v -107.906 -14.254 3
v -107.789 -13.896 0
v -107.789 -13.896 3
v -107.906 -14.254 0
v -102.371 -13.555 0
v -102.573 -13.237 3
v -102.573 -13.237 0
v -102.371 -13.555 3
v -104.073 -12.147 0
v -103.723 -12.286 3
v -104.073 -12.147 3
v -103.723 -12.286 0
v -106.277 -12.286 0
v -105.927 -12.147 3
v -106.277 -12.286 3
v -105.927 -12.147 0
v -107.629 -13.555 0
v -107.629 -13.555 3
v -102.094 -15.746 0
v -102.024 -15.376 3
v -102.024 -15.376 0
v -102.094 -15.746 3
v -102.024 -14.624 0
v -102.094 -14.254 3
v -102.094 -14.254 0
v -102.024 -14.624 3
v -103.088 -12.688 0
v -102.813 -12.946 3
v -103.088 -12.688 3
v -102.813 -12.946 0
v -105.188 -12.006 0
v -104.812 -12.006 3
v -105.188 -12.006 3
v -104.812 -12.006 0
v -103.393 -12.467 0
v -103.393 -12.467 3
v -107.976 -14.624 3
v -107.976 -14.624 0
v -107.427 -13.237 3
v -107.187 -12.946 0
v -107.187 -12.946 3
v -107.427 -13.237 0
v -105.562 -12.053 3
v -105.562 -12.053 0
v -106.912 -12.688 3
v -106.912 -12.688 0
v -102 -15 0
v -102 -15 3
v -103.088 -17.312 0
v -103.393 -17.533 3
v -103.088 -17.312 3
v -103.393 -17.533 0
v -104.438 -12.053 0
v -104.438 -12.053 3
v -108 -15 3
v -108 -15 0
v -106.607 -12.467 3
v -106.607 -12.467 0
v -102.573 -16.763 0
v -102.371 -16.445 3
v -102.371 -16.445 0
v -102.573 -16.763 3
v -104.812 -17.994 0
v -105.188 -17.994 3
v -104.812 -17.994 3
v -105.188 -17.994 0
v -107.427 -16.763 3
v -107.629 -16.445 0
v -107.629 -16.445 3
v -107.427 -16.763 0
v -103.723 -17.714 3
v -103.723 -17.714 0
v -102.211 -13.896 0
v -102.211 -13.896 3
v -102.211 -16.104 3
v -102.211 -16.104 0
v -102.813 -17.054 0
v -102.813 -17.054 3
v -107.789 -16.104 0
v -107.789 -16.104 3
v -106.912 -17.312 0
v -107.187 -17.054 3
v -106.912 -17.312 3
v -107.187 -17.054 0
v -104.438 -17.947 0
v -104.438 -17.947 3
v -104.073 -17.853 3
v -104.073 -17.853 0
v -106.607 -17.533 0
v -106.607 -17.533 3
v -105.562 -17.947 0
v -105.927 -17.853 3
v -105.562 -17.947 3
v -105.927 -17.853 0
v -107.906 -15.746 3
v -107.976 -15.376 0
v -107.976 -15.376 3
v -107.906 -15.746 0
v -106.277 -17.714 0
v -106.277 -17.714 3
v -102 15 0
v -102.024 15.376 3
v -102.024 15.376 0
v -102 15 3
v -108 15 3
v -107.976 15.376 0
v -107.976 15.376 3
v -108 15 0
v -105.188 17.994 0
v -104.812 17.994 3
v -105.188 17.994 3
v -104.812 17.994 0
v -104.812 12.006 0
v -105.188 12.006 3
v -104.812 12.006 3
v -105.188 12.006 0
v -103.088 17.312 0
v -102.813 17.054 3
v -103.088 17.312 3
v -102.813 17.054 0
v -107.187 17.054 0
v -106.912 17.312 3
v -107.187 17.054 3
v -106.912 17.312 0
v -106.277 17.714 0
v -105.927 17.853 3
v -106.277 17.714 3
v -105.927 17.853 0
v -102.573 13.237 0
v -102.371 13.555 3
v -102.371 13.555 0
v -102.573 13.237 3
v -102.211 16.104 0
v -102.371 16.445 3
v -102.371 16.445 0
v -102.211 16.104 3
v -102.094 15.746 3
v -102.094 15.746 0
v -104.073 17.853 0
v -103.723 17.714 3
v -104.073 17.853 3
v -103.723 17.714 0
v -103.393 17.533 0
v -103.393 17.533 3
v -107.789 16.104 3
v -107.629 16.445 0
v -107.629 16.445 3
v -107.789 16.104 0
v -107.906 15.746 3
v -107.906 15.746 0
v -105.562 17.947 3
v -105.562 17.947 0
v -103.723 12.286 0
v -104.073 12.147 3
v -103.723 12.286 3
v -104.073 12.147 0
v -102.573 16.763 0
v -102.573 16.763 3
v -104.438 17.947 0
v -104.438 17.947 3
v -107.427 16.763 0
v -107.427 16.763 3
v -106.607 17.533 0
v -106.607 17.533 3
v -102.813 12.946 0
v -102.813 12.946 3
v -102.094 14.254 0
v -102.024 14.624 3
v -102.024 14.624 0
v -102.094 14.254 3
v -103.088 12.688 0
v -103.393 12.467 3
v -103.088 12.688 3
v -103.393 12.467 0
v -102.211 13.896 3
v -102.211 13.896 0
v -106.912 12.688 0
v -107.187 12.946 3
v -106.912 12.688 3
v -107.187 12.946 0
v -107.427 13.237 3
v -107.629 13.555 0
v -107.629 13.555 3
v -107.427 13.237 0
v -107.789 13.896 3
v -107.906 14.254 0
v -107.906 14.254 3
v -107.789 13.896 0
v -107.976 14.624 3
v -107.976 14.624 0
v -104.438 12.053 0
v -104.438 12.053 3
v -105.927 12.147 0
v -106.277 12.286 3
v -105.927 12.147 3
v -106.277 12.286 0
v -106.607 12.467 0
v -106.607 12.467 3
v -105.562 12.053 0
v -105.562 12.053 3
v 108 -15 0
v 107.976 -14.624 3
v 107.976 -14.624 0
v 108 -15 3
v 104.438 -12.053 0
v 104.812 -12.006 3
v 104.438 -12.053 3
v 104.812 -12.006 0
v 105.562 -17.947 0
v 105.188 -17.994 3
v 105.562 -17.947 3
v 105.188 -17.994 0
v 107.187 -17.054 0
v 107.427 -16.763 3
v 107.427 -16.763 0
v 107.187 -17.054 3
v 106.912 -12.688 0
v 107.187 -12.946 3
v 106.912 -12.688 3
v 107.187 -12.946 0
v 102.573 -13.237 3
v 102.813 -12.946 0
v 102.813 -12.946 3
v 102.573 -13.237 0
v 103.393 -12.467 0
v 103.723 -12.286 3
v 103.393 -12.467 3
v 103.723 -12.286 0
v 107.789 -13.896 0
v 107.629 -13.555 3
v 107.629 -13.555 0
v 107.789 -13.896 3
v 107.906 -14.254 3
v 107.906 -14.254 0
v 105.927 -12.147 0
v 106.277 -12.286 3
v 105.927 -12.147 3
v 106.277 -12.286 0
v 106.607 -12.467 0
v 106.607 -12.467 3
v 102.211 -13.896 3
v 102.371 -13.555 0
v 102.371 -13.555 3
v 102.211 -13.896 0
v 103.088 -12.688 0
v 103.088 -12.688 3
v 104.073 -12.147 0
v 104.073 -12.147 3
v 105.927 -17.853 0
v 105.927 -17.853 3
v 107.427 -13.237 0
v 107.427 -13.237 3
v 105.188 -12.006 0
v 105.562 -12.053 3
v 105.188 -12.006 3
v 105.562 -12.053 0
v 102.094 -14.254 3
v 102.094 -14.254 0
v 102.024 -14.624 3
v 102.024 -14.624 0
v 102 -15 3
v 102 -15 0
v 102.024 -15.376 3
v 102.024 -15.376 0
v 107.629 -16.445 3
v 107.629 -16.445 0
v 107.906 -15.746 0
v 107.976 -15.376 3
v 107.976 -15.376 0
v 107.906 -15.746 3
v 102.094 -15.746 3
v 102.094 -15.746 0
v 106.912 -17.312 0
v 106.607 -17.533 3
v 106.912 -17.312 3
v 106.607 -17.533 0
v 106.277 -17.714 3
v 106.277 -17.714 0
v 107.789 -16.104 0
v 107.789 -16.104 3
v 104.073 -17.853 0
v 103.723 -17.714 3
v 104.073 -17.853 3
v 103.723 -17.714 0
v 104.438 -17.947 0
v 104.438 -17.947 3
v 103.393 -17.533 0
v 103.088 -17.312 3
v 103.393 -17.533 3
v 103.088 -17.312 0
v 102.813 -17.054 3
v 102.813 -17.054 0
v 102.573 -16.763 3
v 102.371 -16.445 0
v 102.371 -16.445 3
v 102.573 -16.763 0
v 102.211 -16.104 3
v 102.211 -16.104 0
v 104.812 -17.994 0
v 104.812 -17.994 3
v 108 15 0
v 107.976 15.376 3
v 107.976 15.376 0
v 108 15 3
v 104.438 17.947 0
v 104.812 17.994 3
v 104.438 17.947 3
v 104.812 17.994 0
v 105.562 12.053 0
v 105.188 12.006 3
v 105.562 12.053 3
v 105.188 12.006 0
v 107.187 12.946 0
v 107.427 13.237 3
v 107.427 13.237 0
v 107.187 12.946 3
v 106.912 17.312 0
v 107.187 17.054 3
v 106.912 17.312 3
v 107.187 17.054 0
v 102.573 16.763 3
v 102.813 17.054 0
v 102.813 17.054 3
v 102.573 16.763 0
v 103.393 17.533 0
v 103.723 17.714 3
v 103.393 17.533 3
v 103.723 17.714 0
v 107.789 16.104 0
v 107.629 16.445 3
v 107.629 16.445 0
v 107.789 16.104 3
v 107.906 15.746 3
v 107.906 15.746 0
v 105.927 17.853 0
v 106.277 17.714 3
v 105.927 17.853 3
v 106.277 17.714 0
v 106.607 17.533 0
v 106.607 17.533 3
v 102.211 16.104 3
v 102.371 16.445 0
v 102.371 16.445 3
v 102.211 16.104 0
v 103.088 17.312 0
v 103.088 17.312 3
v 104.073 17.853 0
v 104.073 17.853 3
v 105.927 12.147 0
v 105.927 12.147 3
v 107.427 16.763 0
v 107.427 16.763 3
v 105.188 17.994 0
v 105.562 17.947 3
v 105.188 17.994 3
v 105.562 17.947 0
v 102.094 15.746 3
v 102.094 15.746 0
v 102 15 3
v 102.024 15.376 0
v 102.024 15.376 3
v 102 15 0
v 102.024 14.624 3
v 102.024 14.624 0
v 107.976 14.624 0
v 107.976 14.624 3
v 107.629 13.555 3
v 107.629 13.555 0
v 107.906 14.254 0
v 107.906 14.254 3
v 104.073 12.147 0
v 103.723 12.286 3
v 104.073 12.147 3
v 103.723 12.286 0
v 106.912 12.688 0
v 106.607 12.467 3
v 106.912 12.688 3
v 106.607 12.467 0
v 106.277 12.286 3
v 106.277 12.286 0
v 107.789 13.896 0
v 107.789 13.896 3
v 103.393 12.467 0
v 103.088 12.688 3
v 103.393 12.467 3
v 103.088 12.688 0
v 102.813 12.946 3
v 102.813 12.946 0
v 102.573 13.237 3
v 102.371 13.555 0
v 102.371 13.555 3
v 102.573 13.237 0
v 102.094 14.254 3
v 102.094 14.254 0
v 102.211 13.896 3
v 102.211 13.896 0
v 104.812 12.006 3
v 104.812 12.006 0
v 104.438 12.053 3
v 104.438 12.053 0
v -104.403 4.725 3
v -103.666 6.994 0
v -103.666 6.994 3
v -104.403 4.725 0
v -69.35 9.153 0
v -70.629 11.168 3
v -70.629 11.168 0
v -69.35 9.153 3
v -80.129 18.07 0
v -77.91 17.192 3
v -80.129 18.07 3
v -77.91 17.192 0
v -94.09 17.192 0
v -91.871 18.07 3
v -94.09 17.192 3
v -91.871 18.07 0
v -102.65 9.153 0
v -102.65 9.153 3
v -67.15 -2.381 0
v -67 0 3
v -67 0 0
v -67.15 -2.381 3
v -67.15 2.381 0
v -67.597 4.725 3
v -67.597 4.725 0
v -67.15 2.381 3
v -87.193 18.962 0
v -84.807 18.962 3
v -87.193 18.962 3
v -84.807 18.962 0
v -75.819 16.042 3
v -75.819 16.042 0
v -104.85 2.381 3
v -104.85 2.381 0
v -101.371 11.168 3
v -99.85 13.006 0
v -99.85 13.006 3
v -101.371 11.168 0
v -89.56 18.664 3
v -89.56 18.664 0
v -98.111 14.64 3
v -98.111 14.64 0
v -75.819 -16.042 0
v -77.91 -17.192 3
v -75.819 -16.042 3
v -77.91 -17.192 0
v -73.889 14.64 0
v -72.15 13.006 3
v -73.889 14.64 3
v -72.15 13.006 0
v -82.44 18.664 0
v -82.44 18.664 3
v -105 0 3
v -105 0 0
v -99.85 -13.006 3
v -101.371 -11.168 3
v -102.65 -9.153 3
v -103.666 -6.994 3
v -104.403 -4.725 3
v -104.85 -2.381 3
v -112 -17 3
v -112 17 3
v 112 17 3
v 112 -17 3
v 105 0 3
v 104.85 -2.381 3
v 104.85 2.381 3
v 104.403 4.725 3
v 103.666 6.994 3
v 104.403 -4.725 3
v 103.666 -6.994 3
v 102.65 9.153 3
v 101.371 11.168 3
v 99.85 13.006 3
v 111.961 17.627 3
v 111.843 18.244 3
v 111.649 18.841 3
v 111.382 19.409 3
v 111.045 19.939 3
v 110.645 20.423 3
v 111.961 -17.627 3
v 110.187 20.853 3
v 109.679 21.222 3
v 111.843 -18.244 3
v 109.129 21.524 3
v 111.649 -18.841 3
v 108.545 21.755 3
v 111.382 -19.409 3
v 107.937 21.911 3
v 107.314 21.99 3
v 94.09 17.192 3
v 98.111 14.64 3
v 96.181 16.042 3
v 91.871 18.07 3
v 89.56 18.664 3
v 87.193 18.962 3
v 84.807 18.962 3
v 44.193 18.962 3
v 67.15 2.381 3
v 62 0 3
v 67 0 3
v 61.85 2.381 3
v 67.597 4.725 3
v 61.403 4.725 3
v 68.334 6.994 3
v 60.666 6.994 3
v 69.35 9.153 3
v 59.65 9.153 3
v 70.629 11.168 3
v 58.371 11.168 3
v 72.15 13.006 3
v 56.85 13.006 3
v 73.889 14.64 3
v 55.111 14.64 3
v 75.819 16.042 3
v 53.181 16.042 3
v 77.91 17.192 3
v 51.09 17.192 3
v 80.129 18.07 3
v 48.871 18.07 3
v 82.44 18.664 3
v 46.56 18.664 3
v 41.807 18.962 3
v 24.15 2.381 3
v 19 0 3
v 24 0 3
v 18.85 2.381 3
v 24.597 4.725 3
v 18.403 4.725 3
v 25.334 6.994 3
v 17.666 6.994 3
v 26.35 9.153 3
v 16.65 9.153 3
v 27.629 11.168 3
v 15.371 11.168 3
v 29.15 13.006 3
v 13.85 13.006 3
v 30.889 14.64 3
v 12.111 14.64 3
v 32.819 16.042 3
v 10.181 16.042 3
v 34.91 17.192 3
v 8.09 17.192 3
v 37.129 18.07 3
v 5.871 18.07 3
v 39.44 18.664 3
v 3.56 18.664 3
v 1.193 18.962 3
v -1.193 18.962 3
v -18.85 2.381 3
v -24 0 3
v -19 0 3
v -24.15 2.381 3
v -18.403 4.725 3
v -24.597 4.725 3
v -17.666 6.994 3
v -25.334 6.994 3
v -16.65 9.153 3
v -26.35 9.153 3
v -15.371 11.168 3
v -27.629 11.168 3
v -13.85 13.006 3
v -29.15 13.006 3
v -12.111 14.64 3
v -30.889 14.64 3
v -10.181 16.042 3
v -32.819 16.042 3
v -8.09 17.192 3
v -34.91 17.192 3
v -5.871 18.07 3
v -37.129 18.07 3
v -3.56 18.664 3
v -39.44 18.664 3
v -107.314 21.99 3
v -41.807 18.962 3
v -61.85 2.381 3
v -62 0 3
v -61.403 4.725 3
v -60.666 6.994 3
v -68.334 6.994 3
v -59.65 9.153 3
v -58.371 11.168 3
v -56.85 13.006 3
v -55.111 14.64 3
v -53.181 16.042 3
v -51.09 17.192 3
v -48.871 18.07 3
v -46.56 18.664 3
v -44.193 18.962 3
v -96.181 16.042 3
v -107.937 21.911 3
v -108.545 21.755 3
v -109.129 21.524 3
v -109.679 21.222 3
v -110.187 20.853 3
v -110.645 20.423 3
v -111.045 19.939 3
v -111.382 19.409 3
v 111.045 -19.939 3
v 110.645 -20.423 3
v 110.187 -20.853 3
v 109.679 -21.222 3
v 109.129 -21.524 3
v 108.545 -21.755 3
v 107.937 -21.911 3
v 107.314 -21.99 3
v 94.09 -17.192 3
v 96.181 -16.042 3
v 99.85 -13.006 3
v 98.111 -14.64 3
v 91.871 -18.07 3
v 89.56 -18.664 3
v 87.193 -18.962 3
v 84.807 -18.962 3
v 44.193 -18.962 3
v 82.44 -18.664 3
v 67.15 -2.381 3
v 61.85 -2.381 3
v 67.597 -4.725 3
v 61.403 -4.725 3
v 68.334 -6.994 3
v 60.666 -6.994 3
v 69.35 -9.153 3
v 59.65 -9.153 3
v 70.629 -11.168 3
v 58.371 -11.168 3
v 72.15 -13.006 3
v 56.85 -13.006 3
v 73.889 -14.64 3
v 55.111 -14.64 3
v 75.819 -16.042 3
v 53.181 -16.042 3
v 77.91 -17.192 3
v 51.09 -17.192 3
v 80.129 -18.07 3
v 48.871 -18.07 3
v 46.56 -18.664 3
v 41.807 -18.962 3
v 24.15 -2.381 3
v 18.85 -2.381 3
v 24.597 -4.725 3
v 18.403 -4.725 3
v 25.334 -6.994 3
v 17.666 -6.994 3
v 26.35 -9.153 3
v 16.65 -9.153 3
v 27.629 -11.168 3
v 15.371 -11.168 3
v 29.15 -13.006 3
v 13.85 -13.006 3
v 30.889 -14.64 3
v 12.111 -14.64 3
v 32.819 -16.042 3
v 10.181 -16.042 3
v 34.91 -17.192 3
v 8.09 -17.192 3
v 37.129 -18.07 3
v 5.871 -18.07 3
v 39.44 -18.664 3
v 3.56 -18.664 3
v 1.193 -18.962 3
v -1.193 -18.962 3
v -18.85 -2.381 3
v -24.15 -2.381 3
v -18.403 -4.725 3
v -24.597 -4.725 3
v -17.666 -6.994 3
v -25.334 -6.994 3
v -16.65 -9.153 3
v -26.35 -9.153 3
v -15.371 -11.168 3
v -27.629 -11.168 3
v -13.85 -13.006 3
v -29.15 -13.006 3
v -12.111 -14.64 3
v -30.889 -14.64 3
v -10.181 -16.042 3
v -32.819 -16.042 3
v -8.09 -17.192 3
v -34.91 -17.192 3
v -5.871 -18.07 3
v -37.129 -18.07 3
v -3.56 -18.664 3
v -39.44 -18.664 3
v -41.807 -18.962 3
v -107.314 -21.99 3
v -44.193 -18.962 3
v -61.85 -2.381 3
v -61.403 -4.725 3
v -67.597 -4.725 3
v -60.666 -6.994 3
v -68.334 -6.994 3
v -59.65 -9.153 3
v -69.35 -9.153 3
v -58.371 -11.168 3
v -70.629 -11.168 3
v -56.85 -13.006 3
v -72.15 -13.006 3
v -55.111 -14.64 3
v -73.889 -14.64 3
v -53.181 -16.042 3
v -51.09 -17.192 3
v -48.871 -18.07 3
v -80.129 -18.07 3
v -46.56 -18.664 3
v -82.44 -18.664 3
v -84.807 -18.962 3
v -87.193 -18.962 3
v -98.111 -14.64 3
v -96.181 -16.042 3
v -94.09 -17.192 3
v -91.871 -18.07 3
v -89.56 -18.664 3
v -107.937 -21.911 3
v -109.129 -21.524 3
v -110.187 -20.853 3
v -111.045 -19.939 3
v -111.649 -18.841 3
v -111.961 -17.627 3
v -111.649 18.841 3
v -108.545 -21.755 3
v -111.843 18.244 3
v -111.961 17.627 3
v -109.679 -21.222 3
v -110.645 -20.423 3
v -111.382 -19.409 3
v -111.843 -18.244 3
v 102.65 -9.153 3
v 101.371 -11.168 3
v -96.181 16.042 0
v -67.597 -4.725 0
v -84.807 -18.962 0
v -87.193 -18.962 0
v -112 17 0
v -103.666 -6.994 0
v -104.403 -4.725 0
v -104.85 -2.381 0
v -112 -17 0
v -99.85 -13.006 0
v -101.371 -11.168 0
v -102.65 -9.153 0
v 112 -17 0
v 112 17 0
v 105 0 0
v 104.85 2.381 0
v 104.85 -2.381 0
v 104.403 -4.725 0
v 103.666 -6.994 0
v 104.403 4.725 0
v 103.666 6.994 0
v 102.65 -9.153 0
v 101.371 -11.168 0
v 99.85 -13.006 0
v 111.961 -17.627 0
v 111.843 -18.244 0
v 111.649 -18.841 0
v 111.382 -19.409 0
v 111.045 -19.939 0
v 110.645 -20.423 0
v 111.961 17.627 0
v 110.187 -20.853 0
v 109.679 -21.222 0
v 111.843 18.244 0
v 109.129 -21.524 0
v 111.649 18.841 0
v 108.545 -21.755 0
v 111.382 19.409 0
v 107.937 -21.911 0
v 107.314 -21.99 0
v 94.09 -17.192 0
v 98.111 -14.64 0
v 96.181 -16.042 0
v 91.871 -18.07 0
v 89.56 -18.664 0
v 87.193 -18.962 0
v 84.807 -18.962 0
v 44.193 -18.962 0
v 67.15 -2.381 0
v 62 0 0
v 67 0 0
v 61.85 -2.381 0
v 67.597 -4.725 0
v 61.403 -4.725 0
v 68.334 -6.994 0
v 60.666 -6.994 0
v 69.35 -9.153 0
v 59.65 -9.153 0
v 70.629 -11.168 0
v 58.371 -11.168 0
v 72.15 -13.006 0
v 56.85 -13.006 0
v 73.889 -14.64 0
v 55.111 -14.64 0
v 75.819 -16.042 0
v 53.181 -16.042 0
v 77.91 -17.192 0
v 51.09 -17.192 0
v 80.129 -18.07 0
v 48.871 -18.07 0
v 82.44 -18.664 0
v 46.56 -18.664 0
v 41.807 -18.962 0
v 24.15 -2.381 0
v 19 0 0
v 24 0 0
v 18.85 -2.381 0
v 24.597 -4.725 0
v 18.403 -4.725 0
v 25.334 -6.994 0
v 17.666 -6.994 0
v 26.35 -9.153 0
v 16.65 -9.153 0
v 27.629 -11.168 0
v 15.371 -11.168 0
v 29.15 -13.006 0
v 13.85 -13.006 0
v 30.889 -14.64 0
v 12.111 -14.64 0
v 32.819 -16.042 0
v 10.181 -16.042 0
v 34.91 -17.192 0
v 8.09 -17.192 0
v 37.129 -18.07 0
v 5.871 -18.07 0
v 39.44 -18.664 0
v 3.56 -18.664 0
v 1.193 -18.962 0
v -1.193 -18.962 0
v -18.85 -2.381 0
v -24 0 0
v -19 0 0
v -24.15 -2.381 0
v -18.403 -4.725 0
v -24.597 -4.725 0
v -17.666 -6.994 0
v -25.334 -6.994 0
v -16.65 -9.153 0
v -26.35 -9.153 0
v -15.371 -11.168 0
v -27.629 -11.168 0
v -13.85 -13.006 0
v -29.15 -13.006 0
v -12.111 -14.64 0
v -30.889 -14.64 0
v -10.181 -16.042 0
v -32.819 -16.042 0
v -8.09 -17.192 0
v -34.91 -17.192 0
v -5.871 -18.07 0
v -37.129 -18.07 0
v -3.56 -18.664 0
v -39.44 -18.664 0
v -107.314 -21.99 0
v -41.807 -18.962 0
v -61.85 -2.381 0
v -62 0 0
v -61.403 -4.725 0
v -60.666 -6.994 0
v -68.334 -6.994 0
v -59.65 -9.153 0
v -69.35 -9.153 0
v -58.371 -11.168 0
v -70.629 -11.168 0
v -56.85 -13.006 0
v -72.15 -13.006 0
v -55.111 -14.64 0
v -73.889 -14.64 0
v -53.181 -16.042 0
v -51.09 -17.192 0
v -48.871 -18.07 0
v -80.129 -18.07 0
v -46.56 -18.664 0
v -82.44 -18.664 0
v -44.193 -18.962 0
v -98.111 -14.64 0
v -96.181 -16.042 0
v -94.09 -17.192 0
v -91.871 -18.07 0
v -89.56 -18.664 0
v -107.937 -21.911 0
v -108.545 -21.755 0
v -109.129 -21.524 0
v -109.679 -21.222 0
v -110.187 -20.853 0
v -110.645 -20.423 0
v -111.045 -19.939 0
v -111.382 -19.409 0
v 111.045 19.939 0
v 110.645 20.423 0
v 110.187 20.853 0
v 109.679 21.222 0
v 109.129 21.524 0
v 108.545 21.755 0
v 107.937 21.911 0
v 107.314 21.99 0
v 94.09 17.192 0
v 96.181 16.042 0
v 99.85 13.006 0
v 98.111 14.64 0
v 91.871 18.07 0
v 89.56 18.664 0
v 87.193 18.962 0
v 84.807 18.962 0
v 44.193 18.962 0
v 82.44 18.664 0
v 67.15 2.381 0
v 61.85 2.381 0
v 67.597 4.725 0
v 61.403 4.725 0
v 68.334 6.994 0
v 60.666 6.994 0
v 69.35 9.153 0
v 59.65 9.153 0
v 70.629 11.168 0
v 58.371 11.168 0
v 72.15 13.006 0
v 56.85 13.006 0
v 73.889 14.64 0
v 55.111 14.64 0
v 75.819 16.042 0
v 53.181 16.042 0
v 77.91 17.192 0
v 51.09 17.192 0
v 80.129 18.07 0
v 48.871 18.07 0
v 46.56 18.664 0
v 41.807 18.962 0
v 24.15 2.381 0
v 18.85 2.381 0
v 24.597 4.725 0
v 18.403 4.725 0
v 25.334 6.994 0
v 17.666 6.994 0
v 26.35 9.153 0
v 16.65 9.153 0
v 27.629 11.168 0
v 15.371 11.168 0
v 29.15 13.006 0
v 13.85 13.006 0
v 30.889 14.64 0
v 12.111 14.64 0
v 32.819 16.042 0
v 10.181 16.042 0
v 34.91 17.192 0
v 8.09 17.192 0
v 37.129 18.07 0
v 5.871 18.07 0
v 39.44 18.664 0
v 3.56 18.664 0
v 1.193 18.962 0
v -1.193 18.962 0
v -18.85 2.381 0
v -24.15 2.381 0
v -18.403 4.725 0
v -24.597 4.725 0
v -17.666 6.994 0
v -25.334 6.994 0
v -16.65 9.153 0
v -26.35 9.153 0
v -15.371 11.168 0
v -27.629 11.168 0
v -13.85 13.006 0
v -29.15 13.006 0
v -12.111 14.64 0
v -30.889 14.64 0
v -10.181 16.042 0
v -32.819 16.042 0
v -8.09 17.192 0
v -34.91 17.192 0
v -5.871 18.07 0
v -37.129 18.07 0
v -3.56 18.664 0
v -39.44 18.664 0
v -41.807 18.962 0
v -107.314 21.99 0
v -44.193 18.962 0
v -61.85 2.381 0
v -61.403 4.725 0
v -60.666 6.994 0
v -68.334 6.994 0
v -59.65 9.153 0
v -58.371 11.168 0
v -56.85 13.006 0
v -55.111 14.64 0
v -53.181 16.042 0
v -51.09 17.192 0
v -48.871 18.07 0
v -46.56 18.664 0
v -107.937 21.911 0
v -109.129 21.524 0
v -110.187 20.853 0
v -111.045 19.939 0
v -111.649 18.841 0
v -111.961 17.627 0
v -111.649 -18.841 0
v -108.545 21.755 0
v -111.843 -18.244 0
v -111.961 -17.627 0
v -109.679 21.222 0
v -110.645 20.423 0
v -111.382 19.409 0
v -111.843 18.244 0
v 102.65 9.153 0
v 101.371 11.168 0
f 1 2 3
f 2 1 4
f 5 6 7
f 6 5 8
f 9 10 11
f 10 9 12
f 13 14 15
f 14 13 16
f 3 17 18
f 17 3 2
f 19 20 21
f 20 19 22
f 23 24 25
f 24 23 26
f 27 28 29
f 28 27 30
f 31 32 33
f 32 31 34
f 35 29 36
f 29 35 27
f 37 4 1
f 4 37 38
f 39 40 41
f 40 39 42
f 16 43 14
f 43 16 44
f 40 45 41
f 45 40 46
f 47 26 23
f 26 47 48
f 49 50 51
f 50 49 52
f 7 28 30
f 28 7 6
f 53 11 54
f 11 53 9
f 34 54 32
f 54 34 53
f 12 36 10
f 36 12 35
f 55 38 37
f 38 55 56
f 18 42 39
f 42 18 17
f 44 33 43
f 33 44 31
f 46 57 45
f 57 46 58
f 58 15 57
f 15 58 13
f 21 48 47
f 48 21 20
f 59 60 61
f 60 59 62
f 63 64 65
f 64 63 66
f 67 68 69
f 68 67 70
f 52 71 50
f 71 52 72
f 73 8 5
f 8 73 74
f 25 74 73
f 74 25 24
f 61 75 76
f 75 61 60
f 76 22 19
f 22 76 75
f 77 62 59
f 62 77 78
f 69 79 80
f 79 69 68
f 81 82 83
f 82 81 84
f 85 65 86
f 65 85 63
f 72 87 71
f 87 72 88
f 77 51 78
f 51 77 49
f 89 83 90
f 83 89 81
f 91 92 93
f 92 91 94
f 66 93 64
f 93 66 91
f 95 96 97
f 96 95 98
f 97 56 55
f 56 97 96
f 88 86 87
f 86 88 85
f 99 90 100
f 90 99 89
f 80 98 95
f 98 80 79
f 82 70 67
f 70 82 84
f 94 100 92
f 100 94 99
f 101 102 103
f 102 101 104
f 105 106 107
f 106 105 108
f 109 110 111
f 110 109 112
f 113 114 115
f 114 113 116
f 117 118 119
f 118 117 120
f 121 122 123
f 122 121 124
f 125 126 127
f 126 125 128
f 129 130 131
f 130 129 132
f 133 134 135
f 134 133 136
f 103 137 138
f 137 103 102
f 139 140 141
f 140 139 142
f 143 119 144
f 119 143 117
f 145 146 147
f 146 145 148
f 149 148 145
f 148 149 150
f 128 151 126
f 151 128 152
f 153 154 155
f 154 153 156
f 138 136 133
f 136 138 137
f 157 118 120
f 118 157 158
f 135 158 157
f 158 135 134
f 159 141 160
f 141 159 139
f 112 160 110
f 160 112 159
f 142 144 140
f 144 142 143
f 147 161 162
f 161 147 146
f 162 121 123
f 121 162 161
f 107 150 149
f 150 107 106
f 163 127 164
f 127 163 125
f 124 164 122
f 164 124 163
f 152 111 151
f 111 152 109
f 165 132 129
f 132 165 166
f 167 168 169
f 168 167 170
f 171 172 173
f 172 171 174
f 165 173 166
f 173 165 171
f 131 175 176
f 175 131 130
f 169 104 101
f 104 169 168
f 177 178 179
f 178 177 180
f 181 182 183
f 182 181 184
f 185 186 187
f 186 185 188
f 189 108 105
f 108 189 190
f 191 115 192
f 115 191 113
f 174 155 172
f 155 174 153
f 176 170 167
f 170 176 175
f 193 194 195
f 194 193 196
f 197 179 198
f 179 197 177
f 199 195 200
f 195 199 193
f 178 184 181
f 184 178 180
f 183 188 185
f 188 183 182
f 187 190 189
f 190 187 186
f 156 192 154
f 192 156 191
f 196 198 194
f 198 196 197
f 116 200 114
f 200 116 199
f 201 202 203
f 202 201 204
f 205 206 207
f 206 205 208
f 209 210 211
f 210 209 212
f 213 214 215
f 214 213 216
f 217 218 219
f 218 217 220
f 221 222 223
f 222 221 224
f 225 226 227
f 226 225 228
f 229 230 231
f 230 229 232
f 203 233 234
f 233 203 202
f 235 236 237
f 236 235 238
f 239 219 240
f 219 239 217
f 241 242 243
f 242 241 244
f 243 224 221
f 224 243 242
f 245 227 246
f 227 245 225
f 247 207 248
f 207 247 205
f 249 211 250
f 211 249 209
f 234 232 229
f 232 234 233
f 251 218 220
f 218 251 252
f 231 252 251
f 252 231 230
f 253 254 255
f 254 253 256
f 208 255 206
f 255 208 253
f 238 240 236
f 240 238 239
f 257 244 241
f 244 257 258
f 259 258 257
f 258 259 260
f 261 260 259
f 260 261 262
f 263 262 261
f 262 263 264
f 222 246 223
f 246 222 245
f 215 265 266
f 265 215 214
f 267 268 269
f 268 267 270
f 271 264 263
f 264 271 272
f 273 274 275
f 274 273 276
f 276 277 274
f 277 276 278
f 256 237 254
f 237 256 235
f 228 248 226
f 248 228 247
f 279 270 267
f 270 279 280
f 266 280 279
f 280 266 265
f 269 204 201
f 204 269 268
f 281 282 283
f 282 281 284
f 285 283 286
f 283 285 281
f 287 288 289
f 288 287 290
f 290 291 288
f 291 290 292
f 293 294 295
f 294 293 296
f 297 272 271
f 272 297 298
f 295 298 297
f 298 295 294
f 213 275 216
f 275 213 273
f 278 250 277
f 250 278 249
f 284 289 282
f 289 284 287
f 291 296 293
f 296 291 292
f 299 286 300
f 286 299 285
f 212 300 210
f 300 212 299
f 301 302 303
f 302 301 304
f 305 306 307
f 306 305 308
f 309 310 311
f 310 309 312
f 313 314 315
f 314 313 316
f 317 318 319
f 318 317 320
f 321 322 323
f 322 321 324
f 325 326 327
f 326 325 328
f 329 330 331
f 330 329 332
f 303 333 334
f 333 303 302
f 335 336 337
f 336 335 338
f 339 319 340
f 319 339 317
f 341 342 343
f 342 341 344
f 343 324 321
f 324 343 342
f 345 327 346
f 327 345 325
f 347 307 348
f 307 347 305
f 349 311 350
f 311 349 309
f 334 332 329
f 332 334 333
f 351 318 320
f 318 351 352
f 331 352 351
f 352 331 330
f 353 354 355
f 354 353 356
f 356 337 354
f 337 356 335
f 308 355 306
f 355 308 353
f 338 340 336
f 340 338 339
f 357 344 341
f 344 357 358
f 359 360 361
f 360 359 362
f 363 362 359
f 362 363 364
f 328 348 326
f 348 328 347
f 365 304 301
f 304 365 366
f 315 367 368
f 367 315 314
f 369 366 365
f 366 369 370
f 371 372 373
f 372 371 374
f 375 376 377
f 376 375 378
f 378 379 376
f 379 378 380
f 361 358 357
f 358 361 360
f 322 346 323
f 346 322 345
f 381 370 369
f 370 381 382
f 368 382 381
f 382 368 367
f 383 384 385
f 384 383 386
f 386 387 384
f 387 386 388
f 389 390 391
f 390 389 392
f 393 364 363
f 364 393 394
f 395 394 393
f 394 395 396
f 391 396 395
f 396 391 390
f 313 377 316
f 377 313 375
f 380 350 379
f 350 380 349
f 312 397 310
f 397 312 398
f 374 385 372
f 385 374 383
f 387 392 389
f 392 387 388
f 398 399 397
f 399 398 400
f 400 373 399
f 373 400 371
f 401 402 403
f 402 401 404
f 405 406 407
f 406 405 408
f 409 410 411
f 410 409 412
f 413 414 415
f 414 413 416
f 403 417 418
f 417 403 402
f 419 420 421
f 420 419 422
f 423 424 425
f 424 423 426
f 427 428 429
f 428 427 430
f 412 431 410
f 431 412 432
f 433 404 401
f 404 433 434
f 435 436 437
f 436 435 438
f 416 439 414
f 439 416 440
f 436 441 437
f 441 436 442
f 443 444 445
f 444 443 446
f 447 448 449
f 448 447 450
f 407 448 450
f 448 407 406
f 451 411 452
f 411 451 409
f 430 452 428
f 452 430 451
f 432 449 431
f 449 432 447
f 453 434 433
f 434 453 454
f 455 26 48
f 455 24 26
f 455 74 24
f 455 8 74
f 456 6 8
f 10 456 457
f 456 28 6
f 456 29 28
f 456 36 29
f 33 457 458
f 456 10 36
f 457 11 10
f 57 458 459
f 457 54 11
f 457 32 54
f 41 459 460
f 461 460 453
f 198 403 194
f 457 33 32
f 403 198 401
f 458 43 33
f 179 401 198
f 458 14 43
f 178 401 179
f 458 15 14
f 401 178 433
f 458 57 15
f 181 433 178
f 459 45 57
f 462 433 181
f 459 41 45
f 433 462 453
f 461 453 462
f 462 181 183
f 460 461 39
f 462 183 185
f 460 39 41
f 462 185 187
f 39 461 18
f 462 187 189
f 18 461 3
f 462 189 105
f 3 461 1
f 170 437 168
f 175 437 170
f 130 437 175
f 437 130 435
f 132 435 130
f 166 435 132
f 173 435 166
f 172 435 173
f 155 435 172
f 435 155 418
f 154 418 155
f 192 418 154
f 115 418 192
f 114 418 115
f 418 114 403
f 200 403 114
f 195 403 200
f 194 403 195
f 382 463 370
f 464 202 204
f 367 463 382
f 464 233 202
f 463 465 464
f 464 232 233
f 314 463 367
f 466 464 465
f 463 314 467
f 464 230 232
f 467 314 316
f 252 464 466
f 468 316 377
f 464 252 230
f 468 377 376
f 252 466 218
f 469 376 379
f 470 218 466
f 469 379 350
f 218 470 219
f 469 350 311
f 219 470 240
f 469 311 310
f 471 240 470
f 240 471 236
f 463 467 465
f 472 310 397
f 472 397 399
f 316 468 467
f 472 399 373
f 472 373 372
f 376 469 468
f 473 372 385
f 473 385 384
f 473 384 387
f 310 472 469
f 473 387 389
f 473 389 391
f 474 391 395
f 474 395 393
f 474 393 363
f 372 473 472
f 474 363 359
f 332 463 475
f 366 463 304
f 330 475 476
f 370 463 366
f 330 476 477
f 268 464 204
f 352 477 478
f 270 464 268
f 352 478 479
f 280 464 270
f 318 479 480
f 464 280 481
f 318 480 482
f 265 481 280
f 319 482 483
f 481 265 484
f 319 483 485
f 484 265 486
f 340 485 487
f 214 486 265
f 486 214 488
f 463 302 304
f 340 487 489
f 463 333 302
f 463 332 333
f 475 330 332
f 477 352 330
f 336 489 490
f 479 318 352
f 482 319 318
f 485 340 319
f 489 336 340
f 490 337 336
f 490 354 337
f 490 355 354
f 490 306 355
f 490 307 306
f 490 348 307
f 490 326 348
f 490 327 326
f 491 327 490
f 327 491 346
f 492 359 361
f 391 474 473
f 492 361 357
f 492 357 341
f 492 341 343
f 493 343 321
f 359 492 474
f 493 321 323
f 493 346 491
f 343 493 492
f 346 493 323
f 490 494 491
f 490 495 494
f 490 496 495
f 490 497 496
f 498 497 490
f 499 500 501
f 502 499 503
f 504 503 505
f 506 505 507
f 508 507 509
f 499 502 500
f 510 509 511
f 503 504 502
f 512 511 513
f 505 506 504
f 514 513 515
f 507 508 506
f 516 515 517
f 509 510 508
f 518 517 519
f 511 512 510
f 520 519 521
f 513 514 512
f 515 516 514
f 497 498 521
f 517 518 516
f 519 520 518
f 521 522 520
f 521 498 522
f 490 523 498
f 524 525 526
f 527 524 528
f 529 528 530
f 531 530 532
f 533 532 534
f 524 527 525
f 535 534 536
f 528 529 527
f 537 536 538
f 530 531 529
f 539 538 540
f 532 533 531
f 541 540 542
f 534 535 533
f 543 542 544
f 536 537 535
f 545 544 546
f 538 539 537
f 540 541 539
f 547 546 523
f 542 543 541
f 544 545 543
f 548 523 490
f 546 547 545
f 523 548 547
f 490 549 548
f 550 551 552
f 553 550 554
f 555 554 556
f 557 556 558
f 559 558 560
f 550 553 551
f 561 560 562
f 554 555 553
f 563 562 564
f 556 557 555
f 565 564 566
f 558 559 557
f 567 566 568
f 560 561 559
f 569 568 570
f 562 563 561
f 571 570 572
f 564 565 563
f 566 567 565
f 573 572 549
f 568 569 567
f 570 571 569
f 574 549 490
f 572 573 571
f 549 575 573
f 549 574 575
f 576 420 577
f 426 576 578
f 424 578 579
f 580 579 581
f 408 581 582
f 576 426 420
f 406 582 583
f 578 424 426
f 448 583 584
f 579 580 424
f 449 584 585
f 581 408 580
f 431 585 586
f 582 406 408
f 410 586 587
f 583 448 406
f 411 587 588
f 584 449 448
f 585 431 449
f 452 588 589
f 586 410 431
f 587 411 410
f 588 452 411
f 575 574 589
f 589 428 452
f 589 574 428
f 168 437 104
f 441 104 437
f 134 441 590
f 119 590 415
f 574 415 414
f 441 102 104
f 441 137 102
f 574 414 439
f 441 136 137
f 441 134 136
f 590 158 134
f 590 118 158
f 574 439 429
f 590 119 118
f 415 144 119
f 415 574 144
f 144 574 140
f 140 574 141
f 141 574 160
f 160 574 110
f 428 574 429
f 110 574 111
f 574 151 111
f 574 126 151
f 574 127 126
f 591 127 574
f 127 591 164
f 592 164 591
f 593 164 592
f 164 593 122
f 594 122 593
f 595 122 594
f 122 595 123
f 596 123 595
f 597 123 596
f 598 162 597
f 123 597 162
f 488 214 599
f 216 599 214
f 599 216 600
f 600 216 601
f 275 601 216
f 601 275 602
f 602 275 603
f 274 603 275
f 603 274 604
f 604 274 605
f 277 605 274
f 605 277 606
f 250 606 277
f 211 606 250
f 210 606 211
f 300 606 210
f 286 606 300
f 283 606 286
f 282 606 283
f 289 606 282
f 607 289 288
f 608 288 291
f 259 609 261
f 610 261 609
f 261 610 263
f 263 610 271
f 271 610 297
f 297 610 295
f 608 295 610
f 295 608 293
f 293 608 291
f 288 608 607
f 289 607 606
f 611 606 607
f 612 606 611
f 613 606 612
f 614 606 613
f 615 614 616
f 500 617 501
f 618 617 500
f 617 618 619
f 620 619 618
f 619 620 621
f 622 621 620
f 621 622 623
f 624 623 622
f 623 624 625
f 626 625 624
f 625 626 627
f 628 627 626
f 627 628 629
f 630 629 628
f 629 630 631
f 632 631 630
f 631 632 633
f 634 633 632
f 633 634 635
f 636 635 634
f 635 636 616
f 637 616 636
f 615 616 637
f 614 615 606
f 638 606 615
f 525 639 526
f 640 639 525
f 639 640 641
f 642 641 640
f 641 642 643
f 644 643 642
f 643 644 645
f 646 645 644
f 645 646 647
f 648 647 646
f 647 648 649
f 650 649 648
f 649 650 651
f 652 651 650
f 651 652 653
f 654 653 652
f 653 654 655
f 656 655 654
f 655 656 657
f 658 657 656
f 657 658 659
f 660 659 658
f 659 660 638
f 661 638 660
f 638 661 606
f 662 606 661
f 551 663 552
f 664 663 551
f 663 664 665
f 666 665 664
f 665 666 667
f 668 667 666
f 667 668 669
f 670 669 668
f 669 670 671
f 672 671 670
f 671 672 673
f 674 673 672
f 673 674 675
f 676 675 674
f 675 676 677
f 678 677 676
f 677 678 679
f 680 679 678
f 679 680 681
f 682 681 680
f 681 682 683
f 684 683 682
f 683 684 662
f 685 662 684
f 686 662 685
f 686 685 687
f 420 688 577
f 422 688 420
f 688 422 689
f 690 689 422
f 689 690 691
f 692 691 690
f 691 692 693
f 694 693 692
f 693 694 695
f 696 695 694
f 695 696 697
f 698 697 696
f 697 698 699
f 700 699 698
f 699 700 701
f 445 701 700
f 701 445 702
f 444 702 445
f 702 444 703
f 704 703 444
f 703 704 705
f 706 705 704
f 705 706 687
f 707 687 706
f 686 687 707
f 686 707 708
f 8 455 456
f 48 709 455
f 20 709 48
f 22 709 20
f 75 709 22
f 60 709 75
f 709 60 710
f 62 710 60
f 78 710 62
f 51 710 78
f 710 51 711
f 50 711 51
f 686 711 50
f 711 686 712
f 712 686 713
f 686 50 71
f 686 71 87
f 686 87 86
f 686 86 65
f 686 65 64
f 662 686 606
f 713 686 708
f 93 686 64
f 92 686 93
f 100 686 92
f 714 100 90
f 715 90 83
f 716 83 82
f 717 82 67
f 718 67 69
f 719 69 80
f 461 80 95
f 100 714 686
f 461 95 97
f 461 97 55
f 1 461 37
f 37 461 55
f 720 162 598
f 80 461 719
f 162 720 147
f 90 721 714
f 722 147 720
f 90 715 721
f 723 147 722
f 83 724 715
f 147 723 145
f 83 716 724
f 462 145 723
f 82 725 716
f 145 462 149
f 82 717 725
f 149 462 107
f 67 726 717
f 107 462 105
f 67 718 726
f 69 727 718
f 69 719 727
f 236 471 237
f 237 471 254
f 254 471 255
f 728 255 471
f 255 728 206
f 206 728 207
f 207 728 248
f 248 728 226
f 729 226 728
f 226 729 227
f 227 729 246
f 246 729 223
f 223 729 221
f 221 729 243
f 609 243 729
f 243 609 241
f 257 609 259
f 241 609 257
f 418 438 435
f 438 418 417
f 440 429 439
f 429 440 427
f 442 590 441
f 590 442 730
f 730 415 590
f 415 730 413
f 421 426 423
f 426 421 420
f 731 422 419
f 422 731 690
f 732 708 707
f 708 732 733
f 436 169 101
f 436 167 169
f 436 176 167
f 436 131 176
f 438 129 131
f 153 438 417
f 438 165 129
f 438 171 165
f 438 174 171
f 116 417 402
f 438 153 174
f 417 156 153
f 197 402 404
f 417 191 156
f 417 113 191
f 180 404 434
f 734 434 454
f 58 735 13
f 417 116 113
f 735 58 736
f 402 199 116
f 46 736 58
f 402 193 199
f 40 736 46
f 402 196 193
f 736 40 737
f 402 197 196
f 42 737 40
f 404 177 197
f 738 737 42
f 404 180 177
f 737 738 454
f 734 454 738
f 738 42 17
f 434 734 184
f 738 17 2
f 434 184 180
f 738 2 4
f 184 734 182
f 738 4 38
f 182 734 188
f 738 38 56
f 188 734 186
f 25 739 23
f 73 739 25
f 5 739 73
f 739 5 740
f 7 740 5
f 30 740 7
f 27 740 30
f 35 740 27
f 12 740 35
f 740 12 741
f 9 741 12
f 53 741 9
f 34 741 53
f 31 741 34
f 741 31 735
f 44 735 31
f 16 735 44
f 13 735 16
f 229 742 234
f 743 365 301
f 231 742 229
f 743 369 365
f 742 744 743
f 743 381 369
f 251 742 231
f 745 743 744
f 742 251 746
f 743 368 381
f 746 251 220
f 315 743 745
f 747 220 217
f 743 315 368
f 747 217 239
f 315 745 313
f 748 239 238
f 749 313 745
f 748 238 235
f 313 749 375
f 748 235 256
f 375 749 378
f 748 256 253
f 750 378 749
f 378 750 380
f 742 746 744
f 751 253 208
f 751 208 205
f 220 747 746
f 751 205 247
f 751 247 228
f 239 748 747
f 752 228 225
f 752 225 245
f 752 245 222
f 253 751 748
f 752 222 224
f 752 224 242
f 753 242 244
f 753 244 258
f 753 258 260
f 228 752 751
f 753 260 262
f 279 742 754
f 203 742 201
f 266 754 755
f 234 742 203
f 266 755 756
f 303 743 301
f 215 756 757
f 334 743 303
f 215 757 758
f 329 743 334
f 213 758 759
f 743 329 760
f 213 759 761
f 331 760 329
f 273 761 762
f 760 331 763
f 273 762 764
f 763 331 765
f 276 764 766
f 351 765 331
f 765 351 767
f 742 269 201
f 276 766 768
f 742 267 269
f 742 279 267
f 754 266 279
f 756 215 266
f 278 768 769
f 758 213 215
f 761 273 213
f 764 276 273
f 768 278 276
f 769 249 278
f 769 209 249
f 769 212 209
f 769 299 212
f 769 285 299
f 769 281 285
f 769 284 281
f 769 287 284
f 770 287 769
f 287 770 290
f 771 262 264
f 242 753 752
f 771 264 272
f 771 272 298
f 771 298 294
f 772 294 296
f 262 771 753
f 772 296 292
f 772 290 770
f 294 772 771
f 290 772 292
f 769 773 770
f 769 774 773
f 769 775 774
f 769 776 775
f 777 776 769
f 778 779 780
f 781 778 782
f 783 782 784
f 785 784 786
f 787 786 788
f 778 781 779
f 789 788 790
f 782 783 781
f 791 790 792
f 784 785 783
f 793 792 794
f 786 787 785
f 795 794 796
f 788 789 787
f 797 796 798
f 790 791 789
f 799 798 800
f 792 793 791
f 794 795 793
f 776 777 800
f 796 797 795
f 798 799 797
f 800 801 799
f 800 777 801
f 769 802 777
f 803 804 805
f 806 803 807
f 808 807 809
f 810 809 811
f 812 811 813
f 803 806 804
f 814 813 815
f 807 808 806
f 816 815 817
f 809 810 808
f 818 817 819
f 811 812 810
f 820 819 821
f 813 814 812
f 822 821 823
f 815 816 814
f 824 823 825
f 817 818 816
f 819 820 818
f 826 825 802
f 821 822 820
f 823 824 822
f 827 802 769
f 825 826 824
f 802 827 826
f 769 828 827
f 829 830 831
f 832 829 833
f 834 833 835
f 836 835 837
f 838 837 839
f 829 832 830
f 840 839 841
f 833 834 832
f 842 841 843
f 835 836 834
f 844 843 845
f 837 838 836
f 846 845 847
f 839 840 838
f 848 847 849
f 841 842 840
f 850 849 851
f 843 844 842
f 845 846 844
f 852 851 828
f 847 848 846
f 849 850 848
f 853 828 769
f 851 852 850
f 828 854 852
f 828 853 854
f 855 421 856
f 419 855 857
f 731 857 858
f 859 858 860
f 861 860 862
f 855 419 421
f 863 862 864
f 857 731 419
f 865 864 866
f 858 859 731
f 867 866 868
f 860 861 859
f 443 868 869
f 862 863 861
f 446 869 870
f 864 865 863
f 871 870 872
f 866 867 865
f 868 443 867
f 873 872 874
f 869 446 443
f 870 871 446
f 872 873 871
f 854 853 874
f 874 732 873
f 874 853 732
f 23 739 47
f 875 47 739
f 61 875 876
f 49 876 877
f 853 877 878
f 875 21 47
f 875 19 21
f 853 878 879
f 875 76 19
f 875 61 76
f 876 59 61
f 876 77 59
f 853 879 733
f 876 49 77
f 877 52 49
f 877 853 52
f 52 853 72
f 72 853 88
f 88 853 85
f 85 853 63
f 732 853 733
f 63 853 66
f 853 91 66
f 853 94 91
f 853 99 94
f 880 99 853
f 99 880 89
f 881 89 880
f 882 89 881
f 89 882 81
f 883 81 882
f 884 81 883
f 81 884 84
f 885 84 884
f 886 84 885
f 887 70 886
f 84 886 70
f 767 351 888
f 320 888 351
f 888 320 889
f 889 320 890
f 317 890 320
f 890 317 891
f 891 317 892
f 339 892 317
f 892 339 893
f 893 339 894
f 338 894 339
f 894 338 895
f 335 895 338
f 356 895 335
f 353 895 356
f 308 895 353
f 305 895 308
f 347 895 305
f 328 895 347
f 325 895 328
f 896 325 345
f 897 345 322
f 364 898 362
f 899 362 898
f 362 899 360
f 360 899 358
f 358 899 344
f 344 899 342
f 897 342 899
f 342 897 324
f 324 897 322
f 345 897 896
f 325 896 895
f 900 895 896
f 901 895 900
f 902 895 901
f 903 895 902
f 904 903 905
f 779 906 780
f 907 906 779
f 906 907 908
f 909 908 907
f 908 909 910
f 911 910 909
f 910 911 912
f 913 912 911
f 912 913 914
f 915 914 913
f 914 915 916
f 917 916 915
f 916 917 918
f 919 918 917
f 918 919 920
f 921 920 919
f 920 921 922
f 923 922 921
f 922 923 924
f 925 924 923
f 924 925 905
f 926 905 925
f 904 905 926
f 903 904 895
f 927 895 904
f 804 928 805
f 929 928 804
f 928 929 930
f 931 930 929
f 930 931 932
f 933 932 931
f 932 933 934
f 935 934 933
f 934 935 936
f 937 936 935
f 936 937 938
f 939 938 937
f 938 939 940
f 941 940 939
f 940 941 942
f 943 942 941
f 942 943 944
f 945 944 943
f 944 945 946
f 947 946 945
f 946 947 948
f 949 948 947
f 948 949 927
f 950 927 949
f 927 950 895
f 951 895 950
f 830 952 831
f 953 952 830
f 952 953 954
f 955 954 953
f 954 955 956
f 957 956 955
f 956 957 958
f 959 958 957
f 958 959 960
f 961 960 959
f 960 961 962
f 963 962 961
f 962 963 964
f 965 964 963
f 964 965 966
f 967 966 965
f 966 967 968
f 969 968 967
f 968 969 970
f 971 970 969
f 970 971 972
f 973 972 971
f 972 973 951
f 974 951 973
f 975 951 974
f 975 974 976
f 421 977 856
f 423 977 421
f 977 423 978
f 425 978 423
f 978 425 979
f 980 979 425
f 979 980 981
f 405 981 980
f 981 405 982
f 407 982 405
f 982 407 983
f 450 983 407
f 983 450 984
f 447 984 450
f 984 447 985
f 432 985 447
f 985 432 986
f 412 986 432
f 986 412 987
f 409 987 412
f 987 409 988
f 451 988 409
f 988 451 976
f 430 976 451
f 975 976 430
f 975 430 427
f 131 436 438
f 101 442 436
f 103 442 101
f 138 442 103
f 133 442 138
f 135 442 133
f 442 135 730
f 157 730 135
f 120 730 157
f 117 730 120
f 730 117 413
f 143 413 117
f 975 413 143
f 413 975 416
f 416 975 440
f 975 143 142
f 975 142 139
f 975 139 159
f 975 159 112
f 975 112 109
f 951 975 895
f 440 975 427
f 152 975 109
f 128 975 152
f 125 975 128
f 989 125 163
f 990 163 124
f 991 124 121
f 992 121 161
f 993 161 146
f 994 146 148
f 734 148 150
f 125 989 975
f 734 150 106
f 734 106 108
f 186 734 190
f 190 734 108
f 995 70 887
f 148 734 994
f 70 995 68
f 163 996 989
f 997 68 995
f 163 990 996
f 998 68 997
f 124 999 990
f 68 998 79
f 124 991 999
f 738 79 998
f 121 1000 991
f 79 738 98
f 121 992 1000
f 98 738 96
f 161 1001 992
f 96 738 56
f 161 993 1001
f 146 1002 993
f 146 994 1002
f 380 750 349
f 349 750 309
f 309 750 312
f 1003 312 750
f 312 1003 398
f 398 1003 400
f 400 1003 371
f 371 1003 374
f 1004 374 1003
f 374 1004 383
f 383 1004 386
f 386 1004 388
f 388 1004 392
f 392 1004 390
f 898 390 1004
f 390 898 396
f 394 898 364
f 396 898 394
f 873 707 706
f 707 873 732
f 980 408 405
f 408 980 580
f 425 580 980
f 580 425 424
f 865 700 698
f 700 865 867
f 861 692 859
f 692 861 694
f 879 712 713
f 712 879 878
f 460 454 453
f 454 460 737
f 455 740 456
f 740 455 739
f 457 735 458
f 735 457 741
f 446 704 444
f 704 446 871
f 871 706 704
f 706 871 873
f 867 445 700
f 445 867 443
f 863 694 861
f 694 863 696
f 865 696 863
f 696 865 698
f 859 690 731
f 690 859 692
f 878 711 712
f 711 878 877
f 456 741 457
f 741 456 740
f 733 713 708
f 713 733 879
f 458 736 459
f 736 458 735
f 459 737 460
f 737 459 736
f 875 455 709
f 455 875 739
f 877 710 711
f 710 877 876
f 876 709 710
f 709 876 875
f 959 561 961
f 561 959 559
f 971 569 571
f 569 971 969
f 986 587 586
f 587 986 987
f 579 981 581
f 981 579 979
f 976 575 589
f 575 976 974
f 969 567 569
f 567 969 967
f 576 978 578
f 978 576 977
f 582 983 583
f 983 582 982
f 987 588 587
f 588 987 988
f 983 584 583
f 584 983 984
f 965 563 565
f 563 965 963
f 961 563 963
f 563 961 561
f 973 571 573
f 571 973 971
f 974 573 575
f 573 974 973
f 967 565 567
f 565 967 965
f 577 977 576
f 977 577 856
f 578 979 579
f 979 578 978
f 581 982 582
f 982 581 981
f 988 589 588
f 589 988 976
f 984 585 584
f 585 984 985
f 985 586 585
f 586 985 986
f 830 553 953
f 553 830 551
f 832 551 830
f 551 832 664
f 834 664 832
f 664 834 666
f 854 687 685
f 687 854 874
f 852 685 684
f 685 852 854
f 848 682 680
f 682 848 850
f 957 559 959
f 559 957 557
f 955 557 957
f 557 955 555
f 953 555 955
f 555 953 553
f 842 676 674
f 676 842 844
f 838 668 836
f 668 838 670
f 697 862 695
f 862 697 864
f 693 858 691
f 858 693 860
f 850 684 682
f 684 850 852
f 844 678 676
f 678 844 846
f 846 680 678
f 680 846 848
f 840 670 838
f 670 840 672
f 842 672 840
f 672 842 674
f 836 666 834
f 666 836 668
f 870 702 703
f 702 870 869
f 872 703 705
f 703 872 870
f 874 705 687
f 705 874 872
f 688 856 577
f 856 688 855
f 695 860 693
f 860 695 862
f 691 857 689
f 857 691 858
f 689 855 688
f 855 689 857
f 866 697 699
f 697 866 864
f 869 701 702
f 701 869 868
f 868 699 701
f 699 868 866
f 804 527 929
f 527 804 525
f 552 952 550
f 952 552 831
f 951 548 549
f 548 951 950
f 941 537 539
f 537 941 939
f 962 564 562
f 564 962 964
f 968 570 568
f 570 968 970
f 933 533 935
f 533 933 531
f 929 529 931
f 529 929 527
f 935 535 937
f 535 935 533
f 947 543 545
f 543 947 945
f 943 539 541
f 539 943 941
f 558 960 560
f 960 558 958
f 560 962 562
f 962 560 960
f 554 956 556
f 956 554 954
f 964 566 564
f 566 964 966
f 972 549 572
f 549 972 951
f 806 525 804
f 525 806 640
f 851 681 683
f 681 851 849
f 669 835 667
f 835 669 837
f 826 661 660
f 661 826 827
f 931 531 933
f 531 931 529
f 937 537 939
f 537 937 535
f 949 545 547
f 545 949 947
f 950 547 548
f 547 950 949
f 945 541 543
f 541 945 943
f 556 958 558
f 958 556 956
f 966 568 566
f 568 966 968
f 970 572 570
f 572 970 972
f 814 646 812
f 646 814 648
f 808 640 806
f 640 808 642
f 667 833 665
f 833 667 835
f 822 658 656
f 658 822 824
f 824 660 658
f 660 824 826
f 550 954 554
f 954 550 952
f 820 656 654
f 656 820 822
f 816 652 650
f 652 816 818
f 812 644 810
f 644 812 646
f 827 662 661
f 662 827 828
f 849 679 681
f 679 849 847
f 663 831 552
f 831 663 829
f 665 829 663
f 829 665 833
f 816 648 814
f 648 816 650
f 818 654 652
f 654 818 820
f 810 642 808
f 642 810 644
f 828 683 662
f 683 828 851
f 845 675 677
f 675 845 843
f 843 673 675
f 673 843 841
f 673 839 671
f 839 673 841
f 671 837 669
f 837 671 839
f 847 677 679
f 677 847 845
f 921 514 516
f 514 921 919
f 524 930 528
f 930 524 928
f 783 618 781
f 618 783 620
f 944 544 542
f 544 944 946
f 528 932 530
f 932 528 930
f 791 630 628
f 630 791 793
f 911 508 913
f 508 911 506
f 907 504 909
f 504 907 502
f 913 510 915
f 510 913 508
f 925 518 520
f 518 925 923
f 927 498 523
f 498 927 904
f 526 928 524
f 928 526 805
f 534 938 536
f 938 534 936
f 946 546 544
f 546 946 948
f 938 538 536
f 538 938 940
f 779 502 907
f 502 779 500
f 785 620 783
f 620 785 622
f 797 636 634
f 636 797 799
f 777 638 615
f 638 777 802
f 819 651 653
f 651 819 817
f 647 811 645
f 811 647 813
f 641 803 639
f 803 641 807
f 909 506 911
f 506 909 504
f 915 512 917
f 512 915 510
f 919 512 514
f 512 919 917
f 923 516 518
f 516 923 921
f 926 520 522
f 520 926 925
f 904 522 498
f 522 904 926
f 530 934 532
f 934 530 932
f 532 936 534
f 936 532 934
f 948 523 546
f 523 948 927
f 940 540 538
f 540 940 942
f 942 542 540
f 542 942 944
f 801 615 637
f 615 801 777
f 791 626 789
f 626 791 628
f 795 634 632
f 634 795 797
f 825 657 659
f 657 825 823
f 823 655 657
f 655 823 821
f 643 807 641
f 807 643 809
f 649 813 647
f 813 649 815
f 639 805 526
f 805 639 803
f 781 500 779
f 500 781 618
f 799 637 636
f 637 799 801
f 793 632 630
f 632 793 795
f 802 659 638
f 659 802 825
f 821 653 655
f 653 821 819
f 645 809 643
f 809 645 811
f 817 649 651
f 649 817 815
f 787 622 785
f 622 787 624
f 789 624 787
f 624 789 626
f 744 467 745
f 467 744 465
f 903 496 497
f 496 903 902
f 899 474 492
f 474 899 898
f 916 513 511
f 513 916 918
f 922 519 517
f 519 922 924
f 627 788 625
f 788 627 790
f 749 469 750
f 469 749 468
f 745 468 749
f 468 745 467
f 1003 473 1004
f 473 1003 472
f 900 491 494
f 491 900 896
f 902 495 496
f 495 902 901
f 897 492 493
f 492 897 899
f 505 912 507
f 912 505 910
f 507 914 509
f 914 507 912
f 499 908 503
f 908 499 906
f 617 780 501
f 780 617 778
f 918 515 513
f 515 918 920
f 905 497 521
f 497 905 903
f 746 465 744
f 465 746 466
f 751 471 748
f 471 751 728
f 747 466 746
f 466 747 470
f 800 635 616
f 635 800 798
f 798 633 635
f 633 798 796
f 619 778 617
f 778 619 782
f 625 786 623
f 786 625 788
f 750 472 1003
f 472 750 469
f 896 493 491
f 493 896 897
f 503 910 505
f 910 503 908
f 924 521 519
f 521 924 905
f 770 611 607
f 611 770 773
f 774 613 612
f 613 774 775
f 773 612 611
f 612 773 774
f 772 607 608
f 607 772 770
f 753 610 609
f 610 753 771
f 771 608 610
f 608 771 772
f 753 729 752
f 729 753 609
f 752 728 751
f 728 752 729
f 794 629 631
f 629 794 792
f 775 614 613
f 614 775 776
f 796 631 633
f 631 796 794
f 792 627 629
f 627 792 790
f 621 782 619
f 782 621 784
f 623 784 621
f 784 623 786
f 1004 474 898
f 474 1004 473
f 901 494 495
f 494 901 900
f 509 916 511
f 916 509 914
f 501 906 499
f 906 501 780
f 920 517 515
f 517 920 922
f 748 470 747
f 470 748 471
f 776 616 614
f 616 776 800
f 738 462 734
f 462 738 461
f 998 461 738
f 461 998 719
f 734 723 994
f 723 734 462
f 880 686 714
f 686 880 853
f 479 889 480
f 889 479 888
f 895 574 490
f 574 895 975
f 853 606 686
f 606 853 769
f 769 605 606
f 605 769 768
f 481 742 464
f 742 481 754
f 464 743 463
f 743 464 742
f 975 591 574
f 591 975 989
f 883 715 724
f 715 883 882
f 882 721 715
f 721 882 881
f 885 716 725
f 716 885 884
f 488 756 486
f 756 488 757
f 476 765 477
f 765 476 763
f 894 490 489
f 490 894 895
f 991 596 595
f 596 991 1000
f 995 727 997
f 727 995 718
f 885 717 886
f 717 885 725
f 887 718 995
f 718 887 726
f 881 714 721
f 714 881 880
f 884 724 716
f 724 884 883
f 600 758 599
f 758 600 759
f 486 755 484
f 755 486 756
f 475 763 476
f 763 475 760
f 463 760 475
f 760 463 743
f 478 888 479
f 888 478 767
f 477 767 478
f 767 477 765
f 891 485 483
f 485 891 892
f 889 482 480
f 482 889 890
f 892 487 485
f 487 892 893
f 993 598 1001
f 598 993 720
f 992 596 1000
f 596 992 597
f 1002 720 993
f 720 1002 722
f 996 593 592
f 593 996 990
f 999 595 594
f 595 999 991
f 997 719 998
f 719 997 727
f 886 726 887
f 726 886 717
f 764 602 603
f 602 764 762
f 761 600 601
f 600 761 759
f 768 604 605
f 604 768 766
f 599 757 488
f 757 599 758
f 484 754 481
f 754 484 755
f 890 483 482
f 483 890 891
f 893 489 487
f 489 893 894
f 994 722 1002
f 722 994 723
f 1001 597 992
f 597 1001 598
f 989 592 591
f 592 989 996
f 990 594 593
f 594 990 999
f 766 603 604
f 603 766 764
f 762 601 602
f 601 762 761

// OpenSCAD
$fn = 50;


difference() {
	union() {
		hull() {
			translate(v = [-107.0000000000, 17.0000000000, 0]) {
				cylinder(h = 3, r = 5);
			}
			translate(v = [107.0000000000, 17.0000000000, 0]) {
				cylinder(h = 3, r = 5);
			}
			translate(v = [-107.0000000000, -17.0000000000, 0]) {
				cylinder(h = 3, r = 5);
			}
			translate(v = [107.0000000000, -17.0000000000, 0]) {
				cylinder(h = 3, r = 5);
			}
		}
	}
	union() {
		#translate(v = [-105.0000000000, -15.0000000000, -100.0000000000]) {
			cylinder(h = 200, r = 3.0000000000);
		}
		#translate(v = [-105.0000000000, 15.0000000000, -100.0000000000]) {
			cylinder(h = 200, r = 3.0000000000);
		}
		#translate(v = [105.0000000000, -15.0000000000, -100.0000000000]) {
			cylinder(h = 200, r = 3.0000000000);
		}
		#translate(v = [105.0000000000, 15.0000000000, -100.0000000000]) {
			cylinder(h = 200, r = 3.0000000000);
		}
		#translate(v = [-86.0000000000, 0, 0]) {
			cylinder(h = 3, r = 19.0000000000);
		}
		#translate(v = [-43.0000000000, 0, 0]) {
			cylinder(h = 3, r = 19.0000000000);
		}
		#cylinder(h = 3, r = 19.0000000000);
		#translate(v = [43.0000000000, 0, 0]) {
			cylinder(h = 3, r = 19.0000000000);
		}
		#translate(v = [86.0000000000, 0, 0]) {
			cylinder(h = 3, r = 19.0000000000);
		}
	}
}
